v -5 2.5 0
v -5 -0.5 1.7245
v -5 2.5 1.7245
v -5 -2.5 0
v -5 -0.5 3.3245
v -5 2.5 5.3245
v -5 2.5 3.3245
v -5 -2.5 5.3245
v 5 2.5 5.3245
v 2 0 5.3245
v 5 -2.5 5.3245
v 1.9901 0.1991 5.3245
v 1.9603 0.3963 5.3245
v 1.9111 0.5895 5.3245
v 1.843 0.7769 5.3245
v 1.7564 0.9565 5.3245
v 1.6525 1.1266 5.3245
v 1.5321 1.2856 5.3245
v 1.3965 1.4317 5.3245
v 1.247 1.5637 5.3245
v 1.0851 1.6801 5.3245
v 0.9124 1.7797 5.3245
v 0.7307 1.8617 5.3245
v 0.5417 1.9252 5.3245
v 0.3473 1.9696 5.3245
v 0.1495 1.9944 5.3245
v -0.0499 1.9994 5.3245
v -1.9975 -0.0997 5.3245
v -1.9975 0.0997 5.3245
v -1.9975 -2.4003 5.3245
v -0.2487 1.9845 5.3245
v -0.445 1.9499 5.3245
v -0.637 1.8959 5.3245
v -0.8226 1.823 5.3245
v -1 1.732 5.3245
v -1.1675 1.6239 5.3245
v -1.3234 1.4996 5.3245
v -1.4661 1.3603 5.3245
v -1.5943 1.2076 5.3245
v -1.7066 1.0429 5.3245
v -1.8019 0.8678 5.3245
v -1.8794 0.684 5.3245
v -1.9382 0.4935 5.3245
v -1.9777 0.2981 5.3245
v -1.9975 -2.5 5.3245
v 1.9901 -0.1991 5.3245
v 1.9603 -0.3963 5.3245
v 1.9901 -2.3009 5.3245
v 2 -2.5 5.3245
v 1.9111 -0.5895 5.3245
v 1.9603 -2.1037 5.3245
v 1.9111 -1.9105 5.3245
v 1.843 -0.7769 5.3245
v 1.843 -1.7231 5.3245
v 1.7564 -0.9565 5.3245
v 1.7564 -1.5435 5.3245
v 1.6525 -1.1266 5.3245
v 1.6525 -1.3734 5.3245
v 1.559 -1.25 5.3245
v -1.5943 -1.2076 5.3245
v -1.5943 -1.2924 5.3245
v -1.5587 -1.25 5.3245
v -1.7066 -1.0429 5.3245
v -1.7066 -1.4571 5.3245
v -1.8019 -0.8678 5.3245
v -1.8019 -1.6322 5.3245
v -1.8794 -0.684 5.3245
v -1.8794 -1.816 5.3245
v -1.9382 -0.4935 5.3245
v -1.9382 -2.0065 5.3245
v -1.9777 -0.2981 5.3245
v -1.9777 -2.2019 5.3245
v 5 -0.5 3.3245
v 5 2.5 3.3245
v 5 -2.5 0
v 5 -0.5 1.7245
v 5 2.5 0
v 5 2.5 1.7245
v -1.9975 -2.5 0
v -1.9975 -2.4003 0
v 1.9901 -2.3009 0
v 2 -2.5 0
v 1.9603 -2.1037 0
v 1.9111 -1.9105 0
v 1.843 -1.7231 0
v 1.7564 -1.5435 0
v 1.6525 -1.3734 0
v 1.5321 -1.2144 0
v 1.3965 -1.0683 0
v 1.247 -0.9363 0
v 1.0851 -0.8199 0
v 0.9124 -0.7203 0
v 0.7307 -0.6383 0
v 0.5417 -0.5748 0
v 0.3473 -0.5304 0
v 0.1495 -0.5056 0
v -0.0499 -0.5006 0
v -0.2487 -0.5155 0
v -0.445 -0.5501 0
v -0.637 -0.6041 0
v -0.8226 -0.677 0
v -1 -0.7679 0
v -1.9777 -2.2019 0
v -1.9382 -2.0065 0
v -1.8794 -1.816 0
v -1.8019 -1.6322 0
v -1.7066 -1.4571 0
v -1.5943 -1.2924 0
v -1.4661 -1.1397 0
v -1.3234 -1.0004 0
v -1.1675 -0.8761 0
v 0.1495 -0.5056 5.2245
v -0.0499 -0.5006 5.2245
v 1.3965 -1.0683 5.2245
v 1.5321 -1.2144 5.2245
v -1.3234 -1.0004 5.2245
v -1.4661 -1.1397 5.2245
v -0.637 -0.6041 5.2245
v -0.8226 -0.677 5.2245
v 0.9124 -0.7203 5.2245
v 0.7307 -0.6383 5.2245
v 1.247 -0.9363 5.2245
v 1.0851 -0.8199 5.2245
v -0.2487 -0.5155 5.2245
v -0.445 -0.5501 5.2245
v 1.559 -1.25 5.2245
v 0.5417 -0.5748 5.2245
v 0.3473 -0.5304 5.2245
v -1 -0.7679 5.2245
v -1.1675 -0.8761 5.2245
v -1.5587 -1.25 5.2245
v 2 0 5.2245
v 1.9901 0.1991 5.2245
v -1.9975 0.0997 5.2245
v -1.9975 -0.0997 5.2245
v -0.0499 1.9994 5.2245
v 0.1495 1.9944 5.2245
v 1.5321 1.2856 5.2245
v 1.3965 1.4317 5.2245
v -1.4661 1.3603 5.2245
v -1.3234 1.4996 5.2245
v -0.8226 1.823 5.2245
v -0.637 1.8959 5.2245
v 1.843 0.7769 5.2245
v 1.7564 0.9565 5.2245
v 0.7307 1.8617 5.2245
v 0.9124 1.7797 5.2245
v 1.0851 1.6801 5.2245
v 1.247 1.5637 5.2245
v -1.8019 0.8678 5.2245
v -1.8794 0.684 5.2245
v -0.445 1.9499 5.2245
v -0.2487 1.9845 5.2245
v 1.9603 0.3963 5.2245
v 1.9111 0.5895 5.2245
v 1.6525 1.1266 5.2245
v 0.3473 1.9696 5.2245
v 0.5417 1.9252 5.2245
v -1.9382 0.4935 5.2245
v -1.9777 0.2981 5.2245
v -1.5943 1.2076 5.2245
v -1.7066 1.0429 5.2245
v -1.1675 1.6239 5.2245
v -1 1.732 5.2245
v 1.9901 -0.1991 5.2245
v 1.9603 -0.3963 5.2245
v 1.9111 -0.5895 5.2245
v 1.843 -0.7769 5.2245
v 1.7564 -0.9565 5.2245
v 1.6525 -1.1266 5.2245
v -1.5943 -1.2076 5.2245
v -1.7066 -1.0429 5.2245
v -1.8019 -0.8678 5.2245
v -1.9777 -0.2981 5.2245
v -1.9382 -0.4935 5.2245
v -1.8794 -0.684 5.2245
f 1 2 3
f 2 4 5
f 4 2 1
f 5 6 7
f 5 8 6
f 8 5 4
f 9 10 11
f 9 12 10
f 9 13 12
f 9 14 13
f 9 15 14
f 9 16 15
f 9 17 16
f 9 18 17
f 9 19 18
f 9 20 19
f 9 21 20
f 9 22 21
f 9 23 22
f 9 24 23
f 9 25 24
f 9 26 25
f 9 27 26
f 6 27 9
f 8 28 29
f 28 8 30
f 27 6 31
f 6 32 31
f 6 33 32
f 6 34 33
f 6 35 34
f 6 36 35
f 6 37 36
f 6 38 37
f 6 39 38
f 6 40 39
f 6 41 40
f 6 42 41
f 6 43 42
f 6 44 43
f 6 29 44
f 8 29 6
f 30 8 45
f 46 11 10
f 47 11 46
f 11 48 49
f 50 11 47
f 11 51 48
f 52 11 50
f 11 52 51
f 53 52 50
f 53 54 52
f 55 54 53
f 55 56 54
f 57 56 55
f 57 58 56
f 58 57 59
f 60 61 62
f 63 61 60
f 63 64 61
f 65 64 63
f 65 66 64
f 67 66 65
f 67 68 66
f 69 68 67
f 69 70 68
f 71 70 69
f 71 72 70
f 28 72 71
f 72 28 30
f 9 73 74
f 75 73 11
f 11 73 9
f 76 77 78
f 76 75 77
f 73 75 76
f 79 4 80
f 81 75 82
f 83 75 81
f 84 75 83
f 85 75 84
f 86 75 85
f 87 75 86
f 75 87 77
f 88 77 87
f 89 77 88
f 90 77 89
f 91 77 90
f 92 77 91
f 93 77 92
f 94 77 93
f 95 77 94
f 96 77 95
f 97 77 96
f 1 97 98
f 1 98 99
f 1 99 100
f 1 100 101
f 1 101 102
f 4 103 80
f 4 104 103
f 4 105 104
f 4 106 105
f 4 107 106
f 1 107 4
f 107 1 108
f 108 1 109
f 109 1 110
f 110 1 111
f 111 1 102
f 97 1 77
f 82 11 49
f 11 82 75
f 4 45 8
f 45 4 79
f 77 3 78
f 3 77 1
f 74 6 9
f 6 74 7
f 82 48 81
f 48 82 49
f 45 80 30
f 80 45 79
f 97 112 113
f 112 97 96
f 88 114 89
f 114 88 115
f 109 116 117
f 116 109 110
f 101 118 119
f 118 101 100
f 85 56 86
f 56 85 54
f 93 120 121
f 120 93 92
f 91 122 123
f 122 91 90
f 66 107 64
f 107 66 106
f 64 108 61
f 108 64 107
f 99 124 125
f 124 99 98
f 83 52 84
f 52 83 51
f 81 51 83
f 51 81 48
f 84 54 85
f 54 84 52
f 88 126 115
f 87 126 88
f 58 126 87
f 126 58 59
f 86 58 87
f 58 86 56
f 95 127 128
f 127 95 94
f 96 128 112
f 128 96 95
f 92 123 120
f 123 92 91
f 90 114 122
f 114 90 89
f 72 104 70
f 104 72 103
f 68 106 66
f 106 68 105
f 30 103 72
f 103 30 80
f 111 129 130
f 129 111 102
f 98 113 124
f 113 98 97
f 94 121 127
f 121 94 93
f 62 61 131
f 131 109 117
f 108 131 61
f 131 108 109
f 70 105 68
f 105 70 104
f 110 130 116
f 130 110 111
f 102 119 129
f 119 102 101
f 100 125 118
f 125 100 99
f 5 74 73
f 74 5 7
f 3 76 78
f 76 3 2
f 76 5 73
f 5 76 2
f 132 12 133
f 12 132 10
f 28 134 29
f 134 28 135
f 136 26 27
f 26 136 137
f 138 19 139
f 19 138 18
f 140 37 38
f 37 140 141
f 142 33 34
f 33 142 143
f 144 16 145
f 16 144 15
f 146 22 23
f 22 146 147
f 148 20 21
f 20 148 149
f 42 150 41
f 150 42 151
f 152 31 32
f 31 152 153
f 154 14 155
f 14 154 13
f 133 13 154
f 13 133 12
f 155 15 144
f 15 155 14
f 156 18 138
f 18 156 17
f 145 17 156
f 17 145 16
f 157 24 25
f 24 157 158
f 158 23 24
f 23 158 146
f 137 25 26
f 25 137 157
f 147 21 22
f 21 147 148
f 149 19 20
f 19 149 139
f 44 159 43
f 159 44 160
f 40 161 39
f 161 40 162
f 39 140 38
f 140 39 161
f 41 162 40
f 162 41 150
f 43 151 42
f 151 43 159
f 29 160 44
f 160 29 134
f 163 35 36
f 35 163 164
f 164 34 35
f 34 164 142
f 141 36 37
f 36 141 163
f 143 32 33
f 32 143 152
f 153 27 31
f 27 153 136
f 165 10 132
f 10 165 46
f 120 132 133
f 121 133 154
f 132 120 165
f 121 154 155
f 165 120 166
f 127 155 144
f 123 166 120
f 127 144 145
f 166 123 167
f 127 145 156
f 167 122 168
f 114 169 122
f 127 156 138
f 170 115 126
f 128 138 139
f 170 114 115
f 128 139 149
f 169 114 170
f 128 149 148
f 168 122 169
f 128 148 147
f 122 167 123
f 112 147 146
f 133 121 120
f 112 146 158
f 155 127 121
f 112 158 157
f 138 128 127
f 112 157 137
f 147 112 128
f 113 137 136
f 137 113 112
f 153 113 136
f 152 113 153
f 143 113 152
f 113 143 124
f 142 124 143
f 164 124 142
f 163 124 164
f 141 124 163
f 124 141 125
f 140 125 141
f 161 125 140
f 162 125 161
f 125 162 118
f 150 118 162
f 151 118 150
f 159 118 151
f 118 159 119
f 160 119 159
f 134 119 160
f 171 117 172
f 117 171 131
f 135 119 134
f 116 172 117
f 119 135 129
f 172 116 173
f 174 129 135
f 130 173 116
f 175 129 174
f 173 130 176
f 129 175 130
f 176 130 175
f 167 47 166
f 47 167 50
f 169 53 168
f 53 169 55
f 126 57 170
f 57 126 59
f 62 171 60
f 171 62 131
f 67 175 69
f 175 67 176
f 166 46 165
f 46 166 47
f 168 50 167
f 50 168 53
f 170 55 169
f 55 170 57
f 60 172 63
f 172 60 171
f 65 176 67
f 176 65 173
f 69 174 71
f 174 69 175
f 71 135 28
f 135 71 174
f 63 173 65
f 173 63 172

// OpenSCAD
// Adapter to raise a Choc XE keyboard from the sides in Atari XE
// computers and bring the keyboard to be flush with the case top.
// (c) Bertrand Le Roy
// Licensed under MIT

$fa = 1;
$fs = 0.2;

height_offset = 1.75;
pcb_thickness = 1.6;
keyboard_angle = 9.8; // degrees. back height: 43.45 front height: 24.21 hypothenuse: 112.22
width = 10;
height = 5;
wall_thickness = 2;

inclined_height_offset = height_offset * cos(keyboard_angle);
total_thickness = wall_thickness + pcb_thickness + inclined_height_offset;

difference() {
    translate([0, 0, total_thickness / 2])
        cube([width, height, total_thickness], center = true);
    translate([0, -height / 2, total_thickness / 2])
        cylinder(r = wall_thickness, h = total_thickness + 0.1, center = true);
    translate([
        0,
        (height - wall_thickness) / 2 - (height / 2 - wall_thickness) + 0.1,
        pcb_thickness / 2 + inclined_height_offset])
        cube([width + 0.1, height - wall_thickness + 0.2, pcb_thickness], center = true);
    translate([0, 0, total_thickness])
        cylinder(r = wall_thickness, h = 0.2, center = true); // mark to distinguish the top of the model
}
